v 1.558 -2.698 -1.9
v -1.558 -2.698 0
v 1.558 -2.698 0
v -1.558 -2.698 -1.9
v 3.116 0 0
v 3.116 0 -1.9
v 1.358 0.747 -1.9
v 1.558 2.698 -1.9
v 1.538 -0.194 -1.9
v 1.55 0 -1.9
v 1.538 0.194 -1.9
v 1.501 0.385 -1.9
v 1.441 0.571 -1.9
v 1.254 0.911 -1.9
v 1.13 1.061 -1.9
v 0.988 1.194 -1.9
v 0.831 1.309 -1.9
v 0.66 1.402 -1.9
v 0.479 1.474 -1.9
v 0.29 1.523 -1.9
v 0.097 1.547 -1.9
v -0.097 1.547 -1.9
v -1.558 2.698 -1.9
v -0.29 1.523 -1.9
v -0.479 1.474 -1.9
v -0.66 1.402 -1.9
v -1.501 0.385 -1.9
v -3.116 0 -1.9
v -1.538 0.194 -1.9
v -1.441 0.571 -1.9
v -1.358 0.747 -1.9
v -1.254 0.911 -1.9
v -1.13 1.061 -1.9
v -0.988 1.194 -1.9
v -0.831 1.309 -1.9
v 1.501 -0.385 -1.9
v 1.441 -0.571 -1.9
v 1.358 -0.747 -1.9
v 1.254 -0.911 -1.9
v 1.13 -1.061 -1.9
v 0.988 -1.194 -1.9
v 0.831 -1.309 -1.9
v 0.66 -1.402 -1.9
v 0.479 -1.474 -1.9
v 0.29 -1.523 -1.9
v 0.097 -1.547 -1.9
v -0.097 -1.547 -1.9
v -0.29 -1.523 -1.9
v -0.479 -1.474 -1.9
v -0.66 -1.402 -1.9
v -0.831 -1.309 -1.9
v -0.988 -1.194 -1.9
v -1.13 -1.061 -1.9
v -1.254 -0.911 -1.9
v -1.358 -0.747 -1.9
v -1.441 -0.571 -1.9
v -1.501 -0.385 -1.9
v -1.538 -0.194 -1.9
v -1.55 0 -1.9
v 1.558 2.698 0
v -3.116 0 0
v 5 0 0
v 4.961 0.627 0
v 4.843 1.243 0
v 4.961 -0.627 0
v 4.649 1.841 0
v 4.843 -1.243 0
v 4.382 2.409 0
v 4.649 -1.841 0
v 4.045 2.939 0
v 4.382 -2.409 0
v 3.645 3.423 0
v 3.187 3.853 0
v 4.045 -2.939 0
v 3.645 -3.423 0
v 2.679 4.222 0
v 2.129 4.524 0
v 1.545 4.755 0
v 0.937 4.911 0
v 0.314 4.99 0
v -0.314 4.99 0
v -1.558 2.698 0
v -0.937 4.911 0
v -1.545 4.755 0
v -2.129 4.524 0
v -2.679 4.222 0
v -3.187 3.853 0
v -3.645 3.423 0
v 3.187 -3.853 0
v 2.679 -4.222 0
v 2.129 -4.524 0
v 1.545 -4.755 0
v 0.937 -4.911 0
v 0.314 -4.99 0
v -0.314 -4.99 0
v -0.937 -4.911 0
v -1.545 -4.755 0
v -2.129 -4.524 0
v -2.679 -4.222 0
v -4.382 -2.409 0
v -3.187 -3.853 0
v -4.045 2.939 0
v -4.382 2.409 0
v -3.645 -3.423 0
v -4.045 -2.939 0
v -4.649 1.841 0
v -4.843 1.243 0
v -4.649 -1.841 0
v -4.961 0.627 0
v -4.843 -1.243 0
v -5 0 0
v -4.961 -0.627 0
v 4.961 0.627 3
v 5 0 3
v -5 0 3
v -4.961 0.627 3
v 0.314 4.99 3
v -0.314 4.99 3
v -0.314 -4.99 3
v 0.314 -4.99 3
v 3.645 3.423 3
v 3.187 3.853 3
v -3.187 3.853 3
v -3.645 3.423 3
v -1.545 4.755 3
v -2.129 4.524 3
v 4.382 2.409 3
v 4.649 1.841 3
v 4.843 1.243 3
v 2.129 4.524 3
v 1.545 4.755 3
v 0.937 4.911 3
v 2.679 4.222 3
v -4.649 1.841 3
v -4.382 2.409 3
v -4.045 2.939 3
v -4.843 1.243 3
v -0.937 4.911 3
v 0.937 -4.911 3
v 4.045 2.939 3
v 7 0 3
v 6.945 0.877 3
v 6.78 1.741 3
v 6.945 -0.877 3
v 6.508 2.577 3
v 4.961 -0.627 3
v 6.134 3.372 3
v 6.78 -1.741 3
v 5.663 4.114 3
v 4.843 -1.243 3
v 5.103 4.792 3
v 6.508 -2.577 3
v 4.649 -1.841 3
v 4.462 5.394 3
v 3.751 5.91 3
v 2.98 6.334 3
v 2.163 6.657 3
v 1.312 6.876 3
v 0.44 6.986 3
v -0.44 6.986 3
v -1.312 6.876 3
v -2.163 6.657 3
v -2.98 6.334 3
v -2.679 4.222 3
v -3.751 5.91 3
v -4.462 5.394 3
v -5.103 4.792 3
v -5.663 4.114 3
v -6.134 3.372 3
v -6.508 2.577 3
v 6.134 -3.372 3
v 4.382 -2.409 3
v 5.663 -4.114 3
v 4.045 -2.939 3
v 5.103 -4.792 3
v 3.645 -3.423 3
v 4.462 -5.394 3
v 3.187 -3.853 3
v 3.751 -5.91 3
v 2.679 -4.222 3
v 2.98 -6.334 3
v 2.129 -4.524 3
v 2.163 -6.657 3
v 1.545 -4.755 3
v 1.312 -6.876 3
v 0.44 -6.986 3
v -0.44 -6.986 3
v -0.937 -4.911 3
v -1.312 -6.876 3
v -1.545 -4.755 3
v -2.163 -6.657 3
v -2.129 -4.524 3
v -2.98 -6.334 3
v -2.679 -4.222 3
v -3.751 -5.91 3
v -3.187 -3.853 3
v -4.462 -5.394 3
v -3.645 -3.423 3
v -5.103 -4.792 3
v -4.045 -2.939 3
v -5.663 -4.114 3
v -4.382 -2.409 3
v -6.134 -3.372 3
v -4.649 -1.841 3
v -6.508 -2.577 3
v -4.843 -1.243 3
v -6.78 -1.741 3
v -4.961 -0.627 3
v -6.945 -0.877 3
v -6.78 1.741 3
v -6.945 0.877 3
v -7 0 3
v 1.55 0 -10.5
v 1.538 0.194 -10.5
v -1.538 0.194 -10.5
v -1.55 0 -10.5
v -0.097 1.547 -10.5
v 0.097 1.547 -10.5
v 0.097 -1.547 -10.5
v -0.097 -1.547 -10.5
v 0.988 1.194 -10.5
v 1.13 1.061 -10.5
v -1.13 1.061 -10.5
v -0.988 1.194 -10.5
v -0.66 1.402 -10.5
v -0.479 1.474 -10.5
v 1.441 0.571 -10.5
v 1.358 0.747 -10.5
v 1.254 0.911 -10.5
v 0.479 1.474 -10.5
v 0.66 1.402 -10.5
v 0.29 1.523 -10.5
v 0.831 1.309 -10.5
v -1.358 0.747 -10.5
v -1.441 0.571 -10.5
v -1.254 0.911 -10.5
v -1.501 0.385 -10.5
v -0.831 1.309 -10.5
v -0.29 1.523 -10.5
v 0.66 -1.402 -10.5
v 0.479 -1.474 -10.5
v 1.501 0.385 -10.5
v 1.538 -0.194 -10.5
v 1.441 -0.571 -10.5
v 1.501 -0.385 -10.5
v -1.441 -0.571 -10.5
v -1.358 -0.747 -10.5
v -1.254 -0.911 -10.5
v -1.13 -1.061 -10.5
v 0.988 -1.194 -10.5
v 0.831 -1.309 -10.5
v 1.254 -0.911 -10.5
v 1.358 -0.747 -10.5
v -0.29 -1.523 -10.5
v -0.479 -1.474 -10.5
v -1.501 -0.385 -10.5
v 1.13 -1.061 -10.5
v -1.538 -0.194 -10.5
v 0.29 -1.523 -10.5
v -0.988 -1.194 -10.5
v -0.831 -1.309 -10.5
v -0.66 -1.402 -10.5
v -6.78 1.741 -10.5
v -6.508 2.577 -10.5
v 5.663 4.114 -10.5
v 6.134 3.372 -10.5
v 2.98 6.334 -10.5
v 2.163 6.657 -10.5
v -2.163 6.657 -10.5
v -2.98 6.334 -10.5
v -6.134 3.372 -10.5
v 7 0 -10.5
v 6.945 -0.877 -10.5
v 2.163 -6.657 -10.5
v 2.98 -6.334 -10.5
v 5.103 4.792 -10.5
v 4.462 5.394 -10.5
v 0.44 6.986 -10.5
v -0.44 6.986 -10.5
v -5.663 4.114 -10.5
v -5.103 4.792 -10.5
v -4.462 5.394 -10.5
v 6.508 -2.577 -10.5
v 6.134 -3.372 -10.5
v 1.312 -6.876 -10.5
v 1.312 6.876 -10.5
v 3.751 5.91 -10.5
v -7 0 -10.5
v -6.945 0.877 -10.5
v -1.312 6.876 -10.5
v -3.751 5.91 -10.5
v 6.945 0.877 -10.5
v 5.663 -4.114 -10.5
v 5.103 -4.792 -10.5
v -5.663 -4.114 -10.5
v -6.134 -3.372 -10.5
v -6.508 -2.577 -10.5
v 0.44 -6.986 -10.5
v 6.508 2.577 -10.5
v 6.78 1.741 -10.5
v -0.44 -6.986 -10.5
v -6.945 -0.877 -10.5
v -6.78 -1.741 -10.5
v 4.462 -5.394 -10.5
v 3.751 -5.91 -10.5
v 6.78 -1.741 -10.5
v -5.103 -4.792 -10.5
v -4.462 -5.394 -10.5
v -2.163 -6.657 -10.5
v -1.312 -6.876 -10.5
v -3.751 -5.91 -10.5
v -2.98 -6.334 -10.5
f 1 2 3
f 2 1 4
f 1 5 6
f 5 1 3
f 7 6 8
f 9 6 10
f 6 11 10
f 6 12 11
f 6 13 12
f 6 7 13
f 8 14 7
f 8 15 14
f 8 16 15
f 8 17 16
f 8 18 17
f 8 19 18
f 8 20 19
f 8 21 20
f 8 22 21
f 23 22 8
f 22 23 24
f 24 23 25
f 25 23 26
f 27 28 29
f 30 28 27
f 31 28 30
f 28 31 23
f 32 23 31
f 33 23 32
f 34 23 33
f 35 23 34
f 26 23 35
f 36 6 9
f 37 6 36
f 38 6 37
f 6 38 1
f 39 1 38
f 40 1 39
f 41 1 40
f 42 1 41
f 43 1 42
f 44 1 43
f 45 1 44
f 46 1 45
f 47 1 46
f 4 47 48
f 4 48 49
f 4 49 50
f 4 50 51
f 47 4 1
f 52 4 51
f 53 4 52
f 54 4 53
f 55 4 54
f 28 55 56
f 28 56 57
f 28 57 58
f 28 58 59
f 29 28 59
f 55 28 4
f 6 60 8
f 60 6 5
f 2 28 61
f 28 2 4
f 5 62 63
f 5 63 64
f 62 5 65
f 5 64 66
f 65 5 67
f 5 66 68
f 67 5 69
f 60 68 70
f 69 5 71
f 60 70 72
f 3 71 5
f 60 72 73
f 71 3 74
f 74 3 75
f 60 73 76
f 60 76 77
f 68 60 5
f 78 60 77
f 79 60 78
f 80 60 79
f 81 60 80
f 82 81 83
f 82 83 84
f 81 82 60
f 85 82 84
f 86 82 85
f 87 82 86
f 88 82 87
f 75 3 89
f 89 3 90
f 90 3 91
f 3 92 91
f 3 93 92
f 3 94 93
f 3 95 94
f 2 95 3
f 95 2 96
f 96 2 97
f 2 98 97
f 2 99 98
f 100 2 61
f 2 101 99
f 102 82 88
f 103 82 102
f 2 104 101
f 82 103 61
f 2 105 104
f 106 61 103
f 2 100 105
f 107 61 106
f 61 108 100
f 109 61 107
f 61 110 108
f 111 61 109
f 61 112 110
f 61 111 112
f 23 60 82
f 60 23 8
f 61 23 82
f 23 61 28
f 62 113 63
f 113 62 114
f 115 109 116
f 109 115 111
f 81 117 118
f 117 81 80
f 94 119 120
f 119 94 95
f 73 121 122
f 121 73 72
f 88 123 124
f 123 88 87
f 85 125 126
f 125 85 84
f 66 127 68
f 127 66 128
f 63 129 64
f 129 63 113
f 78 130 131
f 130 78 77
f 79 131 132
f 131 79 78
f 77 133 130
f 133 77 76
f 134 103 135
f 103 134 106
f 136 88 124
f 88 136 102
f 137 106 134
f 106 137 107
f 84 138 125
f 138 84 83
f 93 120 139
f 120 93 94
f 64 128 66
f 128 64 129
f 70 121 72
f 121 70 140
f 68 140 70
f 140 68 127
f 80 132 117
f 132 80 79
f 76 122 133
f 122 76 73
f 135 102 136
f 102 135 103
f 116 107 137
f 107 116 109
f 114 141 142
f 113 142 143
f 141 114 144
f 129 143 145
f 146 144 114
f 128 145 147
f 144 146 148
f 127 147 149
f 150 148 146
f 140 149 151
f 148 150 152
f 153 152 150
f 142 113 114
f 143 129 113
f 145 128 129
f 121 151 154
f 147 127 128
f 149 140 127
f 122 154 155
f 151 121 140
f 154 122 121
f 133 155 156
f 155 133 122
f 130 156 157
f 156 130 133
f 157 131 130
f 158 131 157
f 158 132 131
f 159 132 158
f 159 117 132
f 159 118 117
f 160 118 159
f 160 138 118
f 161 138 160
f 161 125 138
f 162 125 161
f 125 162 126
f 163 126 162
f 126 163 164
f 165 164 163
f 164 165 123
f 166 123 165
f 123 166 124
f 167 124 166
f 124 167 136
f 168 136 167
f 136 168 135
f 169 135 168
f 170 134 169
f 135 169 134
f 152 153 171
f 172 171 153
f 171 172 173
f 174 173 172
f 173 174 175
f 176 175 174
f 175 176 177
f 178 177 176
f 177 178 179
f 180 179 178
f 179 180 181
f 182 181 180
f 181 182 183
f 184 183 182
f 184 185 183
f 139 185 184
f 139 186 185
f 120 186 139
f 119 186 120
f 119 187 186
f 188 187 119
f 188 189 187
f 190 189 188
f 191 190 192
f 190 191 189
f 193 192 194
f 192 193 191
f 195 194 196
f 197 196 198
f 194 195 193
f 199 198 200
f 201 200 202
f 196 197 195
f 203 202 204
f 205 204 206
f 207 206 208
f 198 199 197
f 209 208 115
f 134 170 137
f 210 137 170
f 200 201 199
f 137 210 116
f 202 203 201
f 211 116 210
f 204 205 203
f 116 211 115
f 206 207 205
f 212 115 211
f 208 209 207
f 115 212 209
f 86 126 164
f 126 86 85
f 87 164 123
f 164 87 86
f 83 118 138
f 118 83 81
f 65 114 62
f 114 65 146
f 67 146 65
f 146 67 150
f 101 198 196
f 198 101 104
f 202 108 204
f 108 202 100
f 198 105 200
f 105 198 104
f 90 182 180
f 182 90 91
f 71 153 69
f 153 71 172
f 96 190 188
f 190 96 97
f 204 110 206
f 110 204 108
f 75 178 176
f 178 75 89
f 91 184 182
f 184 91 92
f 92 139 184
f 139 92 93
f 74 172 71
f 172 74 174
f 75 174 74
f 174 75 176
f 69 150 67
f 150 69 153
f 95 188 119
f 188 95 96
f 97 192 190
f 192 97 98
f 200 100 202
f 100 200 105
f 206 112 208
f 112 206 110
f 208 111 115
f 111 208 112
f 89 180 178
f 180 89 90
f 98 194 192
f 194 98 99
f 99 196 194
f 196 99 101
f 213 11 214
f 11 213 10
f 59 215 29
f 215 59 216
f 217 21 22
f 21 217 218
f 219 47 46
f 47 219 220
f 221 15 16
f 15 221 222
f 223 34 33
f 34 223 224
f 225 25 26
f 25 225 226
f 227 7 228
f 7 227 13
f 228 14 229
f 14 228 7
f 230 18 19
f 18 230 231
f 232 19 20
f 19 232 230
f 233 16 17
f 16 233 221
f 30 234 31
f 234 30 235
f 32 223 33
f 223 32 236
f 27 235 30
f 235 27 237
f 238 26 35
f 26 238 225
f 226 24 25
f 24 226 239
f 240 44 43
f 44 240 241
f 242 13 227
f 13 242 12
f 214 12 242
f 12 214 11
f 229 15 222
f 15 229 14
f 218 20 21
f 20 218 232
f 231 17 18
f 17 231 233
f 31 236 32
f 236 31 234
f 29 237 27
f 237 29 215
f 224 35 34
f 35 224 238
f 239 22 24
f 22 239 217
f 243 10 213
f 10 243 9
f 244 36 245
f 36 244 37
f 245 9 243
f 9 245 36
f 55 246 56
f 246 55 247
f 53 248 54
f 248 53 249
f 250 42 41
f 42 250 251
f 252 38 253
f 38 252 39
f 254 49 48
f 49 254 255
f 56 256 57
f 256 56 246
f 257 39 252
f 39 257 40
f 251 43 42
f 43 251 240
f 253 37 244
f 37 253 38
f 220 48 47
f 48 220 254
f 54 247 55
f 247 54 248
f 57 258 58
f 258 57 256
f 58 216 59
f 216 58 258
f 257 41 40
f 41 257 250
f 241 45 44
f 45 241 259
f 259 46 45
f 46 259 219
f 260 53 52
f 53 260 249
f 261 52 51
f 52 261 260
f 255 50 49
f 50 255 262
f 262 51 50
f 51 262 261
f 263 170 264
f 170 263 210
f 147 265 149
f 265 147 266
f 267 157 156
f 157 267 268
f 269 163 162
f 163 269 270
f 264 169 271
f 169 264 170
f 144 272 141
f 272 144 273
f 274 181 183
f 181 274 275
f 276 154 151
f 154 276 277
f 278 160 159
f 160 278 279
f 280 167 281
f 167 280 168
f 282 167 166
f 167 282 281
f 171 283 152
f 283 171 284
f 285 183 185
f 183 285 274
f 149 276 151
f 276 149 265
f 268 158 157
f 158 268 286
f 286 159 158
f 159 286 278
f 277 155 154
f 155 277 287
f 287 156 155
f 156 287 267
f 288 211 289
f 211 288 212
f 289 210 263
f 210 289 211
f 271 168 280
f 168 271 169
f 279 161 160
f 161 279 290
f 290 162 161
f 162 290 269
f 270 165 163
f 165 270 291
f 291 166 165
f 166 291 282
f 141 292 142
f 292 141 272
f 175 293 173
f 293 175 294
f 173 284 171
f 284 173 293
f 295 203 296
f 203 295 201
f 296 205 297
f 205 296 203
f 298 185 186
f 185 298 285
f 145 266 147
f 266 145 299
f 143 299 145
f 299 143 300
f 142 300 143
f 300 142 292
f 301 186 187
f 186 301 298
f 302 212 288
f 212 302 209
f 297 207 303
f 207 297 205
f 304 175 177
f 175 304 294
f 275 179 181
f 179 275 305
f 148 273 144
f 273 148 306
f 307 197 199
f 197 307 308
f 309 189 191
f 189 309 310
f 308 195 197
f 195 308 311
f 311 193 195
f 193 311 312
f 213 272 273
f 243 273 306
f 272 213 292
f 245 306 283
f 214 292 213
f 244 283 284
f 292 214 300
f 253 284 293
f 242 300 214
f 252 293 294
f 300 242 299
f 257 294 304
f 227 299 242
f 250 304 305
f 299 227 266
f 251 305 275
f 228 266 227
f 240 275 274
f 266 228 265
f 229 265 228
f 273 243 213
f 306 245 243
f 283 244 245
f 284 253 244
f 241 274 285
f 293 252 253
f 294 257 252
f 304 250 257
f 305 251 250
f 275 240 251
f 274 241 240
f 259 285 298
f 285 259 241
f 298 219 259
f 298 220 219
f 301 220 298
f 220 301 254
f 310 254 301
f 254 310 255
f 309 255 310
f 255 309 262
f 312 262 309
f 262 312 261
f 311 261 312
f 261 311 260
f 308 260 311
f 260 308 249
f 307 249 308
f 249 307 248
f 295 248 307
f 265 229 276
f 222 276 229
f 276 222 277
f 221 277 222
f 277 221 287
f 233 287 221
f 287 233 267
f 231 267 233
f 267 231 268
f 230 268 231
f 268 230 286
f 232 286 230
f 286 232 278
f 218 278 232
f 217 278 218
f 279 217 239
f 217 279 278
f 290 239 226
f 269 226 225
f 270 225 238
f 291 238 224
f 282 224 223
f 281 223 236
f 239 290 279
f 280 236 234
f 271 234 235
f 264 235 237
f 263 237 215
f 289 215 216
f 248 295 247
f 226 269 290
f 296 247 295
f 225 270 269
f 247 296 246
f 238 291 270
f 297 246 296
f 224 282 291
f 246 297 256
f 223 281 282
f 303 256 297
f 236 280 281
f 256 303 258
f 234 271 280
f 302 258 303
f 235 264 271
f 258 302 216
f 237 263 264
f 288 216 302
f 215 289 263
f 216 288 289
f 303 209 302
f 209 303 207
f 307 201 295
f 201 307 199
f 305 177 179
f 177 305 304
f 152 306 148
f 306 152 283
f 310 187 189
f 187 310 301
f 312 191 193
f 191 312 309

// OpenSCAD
$fn = 50;


difference() {
	union() {
		translate(v = [0, 0, -10.5000000000]) {
			cylinder(h = 13.5000000000, r = 7.0000000000);
		}
	}
	union() {
		translate(v = [0, 0, 0]) {
			rotate(a = [0, 0, 0]) {
				difference() {
					union() {
						translate(v = [0, 0, -1.9000000000]) {
							linear_extrude(height = 1.9000000000) {
								polygon(points = [[3.1158000000, 0.0000000000], [1.5579000000, 2.6983619531], [-1.5579000000, 2.6983619531], [-3.1158000000, 0.0000000000], [-1.5579000000, -2.6983619531], [1.5579000000, -2.6983619531]]);
							}
						}
					}
					union();
				}
			}
		}
		#cylinder(h = 3, r = 5.0000000000);
		#translate(v = [0, 0, -100.0000000000]) {
			cylinder(h = 200, r = 1.5500000000);
		}
	}
}
